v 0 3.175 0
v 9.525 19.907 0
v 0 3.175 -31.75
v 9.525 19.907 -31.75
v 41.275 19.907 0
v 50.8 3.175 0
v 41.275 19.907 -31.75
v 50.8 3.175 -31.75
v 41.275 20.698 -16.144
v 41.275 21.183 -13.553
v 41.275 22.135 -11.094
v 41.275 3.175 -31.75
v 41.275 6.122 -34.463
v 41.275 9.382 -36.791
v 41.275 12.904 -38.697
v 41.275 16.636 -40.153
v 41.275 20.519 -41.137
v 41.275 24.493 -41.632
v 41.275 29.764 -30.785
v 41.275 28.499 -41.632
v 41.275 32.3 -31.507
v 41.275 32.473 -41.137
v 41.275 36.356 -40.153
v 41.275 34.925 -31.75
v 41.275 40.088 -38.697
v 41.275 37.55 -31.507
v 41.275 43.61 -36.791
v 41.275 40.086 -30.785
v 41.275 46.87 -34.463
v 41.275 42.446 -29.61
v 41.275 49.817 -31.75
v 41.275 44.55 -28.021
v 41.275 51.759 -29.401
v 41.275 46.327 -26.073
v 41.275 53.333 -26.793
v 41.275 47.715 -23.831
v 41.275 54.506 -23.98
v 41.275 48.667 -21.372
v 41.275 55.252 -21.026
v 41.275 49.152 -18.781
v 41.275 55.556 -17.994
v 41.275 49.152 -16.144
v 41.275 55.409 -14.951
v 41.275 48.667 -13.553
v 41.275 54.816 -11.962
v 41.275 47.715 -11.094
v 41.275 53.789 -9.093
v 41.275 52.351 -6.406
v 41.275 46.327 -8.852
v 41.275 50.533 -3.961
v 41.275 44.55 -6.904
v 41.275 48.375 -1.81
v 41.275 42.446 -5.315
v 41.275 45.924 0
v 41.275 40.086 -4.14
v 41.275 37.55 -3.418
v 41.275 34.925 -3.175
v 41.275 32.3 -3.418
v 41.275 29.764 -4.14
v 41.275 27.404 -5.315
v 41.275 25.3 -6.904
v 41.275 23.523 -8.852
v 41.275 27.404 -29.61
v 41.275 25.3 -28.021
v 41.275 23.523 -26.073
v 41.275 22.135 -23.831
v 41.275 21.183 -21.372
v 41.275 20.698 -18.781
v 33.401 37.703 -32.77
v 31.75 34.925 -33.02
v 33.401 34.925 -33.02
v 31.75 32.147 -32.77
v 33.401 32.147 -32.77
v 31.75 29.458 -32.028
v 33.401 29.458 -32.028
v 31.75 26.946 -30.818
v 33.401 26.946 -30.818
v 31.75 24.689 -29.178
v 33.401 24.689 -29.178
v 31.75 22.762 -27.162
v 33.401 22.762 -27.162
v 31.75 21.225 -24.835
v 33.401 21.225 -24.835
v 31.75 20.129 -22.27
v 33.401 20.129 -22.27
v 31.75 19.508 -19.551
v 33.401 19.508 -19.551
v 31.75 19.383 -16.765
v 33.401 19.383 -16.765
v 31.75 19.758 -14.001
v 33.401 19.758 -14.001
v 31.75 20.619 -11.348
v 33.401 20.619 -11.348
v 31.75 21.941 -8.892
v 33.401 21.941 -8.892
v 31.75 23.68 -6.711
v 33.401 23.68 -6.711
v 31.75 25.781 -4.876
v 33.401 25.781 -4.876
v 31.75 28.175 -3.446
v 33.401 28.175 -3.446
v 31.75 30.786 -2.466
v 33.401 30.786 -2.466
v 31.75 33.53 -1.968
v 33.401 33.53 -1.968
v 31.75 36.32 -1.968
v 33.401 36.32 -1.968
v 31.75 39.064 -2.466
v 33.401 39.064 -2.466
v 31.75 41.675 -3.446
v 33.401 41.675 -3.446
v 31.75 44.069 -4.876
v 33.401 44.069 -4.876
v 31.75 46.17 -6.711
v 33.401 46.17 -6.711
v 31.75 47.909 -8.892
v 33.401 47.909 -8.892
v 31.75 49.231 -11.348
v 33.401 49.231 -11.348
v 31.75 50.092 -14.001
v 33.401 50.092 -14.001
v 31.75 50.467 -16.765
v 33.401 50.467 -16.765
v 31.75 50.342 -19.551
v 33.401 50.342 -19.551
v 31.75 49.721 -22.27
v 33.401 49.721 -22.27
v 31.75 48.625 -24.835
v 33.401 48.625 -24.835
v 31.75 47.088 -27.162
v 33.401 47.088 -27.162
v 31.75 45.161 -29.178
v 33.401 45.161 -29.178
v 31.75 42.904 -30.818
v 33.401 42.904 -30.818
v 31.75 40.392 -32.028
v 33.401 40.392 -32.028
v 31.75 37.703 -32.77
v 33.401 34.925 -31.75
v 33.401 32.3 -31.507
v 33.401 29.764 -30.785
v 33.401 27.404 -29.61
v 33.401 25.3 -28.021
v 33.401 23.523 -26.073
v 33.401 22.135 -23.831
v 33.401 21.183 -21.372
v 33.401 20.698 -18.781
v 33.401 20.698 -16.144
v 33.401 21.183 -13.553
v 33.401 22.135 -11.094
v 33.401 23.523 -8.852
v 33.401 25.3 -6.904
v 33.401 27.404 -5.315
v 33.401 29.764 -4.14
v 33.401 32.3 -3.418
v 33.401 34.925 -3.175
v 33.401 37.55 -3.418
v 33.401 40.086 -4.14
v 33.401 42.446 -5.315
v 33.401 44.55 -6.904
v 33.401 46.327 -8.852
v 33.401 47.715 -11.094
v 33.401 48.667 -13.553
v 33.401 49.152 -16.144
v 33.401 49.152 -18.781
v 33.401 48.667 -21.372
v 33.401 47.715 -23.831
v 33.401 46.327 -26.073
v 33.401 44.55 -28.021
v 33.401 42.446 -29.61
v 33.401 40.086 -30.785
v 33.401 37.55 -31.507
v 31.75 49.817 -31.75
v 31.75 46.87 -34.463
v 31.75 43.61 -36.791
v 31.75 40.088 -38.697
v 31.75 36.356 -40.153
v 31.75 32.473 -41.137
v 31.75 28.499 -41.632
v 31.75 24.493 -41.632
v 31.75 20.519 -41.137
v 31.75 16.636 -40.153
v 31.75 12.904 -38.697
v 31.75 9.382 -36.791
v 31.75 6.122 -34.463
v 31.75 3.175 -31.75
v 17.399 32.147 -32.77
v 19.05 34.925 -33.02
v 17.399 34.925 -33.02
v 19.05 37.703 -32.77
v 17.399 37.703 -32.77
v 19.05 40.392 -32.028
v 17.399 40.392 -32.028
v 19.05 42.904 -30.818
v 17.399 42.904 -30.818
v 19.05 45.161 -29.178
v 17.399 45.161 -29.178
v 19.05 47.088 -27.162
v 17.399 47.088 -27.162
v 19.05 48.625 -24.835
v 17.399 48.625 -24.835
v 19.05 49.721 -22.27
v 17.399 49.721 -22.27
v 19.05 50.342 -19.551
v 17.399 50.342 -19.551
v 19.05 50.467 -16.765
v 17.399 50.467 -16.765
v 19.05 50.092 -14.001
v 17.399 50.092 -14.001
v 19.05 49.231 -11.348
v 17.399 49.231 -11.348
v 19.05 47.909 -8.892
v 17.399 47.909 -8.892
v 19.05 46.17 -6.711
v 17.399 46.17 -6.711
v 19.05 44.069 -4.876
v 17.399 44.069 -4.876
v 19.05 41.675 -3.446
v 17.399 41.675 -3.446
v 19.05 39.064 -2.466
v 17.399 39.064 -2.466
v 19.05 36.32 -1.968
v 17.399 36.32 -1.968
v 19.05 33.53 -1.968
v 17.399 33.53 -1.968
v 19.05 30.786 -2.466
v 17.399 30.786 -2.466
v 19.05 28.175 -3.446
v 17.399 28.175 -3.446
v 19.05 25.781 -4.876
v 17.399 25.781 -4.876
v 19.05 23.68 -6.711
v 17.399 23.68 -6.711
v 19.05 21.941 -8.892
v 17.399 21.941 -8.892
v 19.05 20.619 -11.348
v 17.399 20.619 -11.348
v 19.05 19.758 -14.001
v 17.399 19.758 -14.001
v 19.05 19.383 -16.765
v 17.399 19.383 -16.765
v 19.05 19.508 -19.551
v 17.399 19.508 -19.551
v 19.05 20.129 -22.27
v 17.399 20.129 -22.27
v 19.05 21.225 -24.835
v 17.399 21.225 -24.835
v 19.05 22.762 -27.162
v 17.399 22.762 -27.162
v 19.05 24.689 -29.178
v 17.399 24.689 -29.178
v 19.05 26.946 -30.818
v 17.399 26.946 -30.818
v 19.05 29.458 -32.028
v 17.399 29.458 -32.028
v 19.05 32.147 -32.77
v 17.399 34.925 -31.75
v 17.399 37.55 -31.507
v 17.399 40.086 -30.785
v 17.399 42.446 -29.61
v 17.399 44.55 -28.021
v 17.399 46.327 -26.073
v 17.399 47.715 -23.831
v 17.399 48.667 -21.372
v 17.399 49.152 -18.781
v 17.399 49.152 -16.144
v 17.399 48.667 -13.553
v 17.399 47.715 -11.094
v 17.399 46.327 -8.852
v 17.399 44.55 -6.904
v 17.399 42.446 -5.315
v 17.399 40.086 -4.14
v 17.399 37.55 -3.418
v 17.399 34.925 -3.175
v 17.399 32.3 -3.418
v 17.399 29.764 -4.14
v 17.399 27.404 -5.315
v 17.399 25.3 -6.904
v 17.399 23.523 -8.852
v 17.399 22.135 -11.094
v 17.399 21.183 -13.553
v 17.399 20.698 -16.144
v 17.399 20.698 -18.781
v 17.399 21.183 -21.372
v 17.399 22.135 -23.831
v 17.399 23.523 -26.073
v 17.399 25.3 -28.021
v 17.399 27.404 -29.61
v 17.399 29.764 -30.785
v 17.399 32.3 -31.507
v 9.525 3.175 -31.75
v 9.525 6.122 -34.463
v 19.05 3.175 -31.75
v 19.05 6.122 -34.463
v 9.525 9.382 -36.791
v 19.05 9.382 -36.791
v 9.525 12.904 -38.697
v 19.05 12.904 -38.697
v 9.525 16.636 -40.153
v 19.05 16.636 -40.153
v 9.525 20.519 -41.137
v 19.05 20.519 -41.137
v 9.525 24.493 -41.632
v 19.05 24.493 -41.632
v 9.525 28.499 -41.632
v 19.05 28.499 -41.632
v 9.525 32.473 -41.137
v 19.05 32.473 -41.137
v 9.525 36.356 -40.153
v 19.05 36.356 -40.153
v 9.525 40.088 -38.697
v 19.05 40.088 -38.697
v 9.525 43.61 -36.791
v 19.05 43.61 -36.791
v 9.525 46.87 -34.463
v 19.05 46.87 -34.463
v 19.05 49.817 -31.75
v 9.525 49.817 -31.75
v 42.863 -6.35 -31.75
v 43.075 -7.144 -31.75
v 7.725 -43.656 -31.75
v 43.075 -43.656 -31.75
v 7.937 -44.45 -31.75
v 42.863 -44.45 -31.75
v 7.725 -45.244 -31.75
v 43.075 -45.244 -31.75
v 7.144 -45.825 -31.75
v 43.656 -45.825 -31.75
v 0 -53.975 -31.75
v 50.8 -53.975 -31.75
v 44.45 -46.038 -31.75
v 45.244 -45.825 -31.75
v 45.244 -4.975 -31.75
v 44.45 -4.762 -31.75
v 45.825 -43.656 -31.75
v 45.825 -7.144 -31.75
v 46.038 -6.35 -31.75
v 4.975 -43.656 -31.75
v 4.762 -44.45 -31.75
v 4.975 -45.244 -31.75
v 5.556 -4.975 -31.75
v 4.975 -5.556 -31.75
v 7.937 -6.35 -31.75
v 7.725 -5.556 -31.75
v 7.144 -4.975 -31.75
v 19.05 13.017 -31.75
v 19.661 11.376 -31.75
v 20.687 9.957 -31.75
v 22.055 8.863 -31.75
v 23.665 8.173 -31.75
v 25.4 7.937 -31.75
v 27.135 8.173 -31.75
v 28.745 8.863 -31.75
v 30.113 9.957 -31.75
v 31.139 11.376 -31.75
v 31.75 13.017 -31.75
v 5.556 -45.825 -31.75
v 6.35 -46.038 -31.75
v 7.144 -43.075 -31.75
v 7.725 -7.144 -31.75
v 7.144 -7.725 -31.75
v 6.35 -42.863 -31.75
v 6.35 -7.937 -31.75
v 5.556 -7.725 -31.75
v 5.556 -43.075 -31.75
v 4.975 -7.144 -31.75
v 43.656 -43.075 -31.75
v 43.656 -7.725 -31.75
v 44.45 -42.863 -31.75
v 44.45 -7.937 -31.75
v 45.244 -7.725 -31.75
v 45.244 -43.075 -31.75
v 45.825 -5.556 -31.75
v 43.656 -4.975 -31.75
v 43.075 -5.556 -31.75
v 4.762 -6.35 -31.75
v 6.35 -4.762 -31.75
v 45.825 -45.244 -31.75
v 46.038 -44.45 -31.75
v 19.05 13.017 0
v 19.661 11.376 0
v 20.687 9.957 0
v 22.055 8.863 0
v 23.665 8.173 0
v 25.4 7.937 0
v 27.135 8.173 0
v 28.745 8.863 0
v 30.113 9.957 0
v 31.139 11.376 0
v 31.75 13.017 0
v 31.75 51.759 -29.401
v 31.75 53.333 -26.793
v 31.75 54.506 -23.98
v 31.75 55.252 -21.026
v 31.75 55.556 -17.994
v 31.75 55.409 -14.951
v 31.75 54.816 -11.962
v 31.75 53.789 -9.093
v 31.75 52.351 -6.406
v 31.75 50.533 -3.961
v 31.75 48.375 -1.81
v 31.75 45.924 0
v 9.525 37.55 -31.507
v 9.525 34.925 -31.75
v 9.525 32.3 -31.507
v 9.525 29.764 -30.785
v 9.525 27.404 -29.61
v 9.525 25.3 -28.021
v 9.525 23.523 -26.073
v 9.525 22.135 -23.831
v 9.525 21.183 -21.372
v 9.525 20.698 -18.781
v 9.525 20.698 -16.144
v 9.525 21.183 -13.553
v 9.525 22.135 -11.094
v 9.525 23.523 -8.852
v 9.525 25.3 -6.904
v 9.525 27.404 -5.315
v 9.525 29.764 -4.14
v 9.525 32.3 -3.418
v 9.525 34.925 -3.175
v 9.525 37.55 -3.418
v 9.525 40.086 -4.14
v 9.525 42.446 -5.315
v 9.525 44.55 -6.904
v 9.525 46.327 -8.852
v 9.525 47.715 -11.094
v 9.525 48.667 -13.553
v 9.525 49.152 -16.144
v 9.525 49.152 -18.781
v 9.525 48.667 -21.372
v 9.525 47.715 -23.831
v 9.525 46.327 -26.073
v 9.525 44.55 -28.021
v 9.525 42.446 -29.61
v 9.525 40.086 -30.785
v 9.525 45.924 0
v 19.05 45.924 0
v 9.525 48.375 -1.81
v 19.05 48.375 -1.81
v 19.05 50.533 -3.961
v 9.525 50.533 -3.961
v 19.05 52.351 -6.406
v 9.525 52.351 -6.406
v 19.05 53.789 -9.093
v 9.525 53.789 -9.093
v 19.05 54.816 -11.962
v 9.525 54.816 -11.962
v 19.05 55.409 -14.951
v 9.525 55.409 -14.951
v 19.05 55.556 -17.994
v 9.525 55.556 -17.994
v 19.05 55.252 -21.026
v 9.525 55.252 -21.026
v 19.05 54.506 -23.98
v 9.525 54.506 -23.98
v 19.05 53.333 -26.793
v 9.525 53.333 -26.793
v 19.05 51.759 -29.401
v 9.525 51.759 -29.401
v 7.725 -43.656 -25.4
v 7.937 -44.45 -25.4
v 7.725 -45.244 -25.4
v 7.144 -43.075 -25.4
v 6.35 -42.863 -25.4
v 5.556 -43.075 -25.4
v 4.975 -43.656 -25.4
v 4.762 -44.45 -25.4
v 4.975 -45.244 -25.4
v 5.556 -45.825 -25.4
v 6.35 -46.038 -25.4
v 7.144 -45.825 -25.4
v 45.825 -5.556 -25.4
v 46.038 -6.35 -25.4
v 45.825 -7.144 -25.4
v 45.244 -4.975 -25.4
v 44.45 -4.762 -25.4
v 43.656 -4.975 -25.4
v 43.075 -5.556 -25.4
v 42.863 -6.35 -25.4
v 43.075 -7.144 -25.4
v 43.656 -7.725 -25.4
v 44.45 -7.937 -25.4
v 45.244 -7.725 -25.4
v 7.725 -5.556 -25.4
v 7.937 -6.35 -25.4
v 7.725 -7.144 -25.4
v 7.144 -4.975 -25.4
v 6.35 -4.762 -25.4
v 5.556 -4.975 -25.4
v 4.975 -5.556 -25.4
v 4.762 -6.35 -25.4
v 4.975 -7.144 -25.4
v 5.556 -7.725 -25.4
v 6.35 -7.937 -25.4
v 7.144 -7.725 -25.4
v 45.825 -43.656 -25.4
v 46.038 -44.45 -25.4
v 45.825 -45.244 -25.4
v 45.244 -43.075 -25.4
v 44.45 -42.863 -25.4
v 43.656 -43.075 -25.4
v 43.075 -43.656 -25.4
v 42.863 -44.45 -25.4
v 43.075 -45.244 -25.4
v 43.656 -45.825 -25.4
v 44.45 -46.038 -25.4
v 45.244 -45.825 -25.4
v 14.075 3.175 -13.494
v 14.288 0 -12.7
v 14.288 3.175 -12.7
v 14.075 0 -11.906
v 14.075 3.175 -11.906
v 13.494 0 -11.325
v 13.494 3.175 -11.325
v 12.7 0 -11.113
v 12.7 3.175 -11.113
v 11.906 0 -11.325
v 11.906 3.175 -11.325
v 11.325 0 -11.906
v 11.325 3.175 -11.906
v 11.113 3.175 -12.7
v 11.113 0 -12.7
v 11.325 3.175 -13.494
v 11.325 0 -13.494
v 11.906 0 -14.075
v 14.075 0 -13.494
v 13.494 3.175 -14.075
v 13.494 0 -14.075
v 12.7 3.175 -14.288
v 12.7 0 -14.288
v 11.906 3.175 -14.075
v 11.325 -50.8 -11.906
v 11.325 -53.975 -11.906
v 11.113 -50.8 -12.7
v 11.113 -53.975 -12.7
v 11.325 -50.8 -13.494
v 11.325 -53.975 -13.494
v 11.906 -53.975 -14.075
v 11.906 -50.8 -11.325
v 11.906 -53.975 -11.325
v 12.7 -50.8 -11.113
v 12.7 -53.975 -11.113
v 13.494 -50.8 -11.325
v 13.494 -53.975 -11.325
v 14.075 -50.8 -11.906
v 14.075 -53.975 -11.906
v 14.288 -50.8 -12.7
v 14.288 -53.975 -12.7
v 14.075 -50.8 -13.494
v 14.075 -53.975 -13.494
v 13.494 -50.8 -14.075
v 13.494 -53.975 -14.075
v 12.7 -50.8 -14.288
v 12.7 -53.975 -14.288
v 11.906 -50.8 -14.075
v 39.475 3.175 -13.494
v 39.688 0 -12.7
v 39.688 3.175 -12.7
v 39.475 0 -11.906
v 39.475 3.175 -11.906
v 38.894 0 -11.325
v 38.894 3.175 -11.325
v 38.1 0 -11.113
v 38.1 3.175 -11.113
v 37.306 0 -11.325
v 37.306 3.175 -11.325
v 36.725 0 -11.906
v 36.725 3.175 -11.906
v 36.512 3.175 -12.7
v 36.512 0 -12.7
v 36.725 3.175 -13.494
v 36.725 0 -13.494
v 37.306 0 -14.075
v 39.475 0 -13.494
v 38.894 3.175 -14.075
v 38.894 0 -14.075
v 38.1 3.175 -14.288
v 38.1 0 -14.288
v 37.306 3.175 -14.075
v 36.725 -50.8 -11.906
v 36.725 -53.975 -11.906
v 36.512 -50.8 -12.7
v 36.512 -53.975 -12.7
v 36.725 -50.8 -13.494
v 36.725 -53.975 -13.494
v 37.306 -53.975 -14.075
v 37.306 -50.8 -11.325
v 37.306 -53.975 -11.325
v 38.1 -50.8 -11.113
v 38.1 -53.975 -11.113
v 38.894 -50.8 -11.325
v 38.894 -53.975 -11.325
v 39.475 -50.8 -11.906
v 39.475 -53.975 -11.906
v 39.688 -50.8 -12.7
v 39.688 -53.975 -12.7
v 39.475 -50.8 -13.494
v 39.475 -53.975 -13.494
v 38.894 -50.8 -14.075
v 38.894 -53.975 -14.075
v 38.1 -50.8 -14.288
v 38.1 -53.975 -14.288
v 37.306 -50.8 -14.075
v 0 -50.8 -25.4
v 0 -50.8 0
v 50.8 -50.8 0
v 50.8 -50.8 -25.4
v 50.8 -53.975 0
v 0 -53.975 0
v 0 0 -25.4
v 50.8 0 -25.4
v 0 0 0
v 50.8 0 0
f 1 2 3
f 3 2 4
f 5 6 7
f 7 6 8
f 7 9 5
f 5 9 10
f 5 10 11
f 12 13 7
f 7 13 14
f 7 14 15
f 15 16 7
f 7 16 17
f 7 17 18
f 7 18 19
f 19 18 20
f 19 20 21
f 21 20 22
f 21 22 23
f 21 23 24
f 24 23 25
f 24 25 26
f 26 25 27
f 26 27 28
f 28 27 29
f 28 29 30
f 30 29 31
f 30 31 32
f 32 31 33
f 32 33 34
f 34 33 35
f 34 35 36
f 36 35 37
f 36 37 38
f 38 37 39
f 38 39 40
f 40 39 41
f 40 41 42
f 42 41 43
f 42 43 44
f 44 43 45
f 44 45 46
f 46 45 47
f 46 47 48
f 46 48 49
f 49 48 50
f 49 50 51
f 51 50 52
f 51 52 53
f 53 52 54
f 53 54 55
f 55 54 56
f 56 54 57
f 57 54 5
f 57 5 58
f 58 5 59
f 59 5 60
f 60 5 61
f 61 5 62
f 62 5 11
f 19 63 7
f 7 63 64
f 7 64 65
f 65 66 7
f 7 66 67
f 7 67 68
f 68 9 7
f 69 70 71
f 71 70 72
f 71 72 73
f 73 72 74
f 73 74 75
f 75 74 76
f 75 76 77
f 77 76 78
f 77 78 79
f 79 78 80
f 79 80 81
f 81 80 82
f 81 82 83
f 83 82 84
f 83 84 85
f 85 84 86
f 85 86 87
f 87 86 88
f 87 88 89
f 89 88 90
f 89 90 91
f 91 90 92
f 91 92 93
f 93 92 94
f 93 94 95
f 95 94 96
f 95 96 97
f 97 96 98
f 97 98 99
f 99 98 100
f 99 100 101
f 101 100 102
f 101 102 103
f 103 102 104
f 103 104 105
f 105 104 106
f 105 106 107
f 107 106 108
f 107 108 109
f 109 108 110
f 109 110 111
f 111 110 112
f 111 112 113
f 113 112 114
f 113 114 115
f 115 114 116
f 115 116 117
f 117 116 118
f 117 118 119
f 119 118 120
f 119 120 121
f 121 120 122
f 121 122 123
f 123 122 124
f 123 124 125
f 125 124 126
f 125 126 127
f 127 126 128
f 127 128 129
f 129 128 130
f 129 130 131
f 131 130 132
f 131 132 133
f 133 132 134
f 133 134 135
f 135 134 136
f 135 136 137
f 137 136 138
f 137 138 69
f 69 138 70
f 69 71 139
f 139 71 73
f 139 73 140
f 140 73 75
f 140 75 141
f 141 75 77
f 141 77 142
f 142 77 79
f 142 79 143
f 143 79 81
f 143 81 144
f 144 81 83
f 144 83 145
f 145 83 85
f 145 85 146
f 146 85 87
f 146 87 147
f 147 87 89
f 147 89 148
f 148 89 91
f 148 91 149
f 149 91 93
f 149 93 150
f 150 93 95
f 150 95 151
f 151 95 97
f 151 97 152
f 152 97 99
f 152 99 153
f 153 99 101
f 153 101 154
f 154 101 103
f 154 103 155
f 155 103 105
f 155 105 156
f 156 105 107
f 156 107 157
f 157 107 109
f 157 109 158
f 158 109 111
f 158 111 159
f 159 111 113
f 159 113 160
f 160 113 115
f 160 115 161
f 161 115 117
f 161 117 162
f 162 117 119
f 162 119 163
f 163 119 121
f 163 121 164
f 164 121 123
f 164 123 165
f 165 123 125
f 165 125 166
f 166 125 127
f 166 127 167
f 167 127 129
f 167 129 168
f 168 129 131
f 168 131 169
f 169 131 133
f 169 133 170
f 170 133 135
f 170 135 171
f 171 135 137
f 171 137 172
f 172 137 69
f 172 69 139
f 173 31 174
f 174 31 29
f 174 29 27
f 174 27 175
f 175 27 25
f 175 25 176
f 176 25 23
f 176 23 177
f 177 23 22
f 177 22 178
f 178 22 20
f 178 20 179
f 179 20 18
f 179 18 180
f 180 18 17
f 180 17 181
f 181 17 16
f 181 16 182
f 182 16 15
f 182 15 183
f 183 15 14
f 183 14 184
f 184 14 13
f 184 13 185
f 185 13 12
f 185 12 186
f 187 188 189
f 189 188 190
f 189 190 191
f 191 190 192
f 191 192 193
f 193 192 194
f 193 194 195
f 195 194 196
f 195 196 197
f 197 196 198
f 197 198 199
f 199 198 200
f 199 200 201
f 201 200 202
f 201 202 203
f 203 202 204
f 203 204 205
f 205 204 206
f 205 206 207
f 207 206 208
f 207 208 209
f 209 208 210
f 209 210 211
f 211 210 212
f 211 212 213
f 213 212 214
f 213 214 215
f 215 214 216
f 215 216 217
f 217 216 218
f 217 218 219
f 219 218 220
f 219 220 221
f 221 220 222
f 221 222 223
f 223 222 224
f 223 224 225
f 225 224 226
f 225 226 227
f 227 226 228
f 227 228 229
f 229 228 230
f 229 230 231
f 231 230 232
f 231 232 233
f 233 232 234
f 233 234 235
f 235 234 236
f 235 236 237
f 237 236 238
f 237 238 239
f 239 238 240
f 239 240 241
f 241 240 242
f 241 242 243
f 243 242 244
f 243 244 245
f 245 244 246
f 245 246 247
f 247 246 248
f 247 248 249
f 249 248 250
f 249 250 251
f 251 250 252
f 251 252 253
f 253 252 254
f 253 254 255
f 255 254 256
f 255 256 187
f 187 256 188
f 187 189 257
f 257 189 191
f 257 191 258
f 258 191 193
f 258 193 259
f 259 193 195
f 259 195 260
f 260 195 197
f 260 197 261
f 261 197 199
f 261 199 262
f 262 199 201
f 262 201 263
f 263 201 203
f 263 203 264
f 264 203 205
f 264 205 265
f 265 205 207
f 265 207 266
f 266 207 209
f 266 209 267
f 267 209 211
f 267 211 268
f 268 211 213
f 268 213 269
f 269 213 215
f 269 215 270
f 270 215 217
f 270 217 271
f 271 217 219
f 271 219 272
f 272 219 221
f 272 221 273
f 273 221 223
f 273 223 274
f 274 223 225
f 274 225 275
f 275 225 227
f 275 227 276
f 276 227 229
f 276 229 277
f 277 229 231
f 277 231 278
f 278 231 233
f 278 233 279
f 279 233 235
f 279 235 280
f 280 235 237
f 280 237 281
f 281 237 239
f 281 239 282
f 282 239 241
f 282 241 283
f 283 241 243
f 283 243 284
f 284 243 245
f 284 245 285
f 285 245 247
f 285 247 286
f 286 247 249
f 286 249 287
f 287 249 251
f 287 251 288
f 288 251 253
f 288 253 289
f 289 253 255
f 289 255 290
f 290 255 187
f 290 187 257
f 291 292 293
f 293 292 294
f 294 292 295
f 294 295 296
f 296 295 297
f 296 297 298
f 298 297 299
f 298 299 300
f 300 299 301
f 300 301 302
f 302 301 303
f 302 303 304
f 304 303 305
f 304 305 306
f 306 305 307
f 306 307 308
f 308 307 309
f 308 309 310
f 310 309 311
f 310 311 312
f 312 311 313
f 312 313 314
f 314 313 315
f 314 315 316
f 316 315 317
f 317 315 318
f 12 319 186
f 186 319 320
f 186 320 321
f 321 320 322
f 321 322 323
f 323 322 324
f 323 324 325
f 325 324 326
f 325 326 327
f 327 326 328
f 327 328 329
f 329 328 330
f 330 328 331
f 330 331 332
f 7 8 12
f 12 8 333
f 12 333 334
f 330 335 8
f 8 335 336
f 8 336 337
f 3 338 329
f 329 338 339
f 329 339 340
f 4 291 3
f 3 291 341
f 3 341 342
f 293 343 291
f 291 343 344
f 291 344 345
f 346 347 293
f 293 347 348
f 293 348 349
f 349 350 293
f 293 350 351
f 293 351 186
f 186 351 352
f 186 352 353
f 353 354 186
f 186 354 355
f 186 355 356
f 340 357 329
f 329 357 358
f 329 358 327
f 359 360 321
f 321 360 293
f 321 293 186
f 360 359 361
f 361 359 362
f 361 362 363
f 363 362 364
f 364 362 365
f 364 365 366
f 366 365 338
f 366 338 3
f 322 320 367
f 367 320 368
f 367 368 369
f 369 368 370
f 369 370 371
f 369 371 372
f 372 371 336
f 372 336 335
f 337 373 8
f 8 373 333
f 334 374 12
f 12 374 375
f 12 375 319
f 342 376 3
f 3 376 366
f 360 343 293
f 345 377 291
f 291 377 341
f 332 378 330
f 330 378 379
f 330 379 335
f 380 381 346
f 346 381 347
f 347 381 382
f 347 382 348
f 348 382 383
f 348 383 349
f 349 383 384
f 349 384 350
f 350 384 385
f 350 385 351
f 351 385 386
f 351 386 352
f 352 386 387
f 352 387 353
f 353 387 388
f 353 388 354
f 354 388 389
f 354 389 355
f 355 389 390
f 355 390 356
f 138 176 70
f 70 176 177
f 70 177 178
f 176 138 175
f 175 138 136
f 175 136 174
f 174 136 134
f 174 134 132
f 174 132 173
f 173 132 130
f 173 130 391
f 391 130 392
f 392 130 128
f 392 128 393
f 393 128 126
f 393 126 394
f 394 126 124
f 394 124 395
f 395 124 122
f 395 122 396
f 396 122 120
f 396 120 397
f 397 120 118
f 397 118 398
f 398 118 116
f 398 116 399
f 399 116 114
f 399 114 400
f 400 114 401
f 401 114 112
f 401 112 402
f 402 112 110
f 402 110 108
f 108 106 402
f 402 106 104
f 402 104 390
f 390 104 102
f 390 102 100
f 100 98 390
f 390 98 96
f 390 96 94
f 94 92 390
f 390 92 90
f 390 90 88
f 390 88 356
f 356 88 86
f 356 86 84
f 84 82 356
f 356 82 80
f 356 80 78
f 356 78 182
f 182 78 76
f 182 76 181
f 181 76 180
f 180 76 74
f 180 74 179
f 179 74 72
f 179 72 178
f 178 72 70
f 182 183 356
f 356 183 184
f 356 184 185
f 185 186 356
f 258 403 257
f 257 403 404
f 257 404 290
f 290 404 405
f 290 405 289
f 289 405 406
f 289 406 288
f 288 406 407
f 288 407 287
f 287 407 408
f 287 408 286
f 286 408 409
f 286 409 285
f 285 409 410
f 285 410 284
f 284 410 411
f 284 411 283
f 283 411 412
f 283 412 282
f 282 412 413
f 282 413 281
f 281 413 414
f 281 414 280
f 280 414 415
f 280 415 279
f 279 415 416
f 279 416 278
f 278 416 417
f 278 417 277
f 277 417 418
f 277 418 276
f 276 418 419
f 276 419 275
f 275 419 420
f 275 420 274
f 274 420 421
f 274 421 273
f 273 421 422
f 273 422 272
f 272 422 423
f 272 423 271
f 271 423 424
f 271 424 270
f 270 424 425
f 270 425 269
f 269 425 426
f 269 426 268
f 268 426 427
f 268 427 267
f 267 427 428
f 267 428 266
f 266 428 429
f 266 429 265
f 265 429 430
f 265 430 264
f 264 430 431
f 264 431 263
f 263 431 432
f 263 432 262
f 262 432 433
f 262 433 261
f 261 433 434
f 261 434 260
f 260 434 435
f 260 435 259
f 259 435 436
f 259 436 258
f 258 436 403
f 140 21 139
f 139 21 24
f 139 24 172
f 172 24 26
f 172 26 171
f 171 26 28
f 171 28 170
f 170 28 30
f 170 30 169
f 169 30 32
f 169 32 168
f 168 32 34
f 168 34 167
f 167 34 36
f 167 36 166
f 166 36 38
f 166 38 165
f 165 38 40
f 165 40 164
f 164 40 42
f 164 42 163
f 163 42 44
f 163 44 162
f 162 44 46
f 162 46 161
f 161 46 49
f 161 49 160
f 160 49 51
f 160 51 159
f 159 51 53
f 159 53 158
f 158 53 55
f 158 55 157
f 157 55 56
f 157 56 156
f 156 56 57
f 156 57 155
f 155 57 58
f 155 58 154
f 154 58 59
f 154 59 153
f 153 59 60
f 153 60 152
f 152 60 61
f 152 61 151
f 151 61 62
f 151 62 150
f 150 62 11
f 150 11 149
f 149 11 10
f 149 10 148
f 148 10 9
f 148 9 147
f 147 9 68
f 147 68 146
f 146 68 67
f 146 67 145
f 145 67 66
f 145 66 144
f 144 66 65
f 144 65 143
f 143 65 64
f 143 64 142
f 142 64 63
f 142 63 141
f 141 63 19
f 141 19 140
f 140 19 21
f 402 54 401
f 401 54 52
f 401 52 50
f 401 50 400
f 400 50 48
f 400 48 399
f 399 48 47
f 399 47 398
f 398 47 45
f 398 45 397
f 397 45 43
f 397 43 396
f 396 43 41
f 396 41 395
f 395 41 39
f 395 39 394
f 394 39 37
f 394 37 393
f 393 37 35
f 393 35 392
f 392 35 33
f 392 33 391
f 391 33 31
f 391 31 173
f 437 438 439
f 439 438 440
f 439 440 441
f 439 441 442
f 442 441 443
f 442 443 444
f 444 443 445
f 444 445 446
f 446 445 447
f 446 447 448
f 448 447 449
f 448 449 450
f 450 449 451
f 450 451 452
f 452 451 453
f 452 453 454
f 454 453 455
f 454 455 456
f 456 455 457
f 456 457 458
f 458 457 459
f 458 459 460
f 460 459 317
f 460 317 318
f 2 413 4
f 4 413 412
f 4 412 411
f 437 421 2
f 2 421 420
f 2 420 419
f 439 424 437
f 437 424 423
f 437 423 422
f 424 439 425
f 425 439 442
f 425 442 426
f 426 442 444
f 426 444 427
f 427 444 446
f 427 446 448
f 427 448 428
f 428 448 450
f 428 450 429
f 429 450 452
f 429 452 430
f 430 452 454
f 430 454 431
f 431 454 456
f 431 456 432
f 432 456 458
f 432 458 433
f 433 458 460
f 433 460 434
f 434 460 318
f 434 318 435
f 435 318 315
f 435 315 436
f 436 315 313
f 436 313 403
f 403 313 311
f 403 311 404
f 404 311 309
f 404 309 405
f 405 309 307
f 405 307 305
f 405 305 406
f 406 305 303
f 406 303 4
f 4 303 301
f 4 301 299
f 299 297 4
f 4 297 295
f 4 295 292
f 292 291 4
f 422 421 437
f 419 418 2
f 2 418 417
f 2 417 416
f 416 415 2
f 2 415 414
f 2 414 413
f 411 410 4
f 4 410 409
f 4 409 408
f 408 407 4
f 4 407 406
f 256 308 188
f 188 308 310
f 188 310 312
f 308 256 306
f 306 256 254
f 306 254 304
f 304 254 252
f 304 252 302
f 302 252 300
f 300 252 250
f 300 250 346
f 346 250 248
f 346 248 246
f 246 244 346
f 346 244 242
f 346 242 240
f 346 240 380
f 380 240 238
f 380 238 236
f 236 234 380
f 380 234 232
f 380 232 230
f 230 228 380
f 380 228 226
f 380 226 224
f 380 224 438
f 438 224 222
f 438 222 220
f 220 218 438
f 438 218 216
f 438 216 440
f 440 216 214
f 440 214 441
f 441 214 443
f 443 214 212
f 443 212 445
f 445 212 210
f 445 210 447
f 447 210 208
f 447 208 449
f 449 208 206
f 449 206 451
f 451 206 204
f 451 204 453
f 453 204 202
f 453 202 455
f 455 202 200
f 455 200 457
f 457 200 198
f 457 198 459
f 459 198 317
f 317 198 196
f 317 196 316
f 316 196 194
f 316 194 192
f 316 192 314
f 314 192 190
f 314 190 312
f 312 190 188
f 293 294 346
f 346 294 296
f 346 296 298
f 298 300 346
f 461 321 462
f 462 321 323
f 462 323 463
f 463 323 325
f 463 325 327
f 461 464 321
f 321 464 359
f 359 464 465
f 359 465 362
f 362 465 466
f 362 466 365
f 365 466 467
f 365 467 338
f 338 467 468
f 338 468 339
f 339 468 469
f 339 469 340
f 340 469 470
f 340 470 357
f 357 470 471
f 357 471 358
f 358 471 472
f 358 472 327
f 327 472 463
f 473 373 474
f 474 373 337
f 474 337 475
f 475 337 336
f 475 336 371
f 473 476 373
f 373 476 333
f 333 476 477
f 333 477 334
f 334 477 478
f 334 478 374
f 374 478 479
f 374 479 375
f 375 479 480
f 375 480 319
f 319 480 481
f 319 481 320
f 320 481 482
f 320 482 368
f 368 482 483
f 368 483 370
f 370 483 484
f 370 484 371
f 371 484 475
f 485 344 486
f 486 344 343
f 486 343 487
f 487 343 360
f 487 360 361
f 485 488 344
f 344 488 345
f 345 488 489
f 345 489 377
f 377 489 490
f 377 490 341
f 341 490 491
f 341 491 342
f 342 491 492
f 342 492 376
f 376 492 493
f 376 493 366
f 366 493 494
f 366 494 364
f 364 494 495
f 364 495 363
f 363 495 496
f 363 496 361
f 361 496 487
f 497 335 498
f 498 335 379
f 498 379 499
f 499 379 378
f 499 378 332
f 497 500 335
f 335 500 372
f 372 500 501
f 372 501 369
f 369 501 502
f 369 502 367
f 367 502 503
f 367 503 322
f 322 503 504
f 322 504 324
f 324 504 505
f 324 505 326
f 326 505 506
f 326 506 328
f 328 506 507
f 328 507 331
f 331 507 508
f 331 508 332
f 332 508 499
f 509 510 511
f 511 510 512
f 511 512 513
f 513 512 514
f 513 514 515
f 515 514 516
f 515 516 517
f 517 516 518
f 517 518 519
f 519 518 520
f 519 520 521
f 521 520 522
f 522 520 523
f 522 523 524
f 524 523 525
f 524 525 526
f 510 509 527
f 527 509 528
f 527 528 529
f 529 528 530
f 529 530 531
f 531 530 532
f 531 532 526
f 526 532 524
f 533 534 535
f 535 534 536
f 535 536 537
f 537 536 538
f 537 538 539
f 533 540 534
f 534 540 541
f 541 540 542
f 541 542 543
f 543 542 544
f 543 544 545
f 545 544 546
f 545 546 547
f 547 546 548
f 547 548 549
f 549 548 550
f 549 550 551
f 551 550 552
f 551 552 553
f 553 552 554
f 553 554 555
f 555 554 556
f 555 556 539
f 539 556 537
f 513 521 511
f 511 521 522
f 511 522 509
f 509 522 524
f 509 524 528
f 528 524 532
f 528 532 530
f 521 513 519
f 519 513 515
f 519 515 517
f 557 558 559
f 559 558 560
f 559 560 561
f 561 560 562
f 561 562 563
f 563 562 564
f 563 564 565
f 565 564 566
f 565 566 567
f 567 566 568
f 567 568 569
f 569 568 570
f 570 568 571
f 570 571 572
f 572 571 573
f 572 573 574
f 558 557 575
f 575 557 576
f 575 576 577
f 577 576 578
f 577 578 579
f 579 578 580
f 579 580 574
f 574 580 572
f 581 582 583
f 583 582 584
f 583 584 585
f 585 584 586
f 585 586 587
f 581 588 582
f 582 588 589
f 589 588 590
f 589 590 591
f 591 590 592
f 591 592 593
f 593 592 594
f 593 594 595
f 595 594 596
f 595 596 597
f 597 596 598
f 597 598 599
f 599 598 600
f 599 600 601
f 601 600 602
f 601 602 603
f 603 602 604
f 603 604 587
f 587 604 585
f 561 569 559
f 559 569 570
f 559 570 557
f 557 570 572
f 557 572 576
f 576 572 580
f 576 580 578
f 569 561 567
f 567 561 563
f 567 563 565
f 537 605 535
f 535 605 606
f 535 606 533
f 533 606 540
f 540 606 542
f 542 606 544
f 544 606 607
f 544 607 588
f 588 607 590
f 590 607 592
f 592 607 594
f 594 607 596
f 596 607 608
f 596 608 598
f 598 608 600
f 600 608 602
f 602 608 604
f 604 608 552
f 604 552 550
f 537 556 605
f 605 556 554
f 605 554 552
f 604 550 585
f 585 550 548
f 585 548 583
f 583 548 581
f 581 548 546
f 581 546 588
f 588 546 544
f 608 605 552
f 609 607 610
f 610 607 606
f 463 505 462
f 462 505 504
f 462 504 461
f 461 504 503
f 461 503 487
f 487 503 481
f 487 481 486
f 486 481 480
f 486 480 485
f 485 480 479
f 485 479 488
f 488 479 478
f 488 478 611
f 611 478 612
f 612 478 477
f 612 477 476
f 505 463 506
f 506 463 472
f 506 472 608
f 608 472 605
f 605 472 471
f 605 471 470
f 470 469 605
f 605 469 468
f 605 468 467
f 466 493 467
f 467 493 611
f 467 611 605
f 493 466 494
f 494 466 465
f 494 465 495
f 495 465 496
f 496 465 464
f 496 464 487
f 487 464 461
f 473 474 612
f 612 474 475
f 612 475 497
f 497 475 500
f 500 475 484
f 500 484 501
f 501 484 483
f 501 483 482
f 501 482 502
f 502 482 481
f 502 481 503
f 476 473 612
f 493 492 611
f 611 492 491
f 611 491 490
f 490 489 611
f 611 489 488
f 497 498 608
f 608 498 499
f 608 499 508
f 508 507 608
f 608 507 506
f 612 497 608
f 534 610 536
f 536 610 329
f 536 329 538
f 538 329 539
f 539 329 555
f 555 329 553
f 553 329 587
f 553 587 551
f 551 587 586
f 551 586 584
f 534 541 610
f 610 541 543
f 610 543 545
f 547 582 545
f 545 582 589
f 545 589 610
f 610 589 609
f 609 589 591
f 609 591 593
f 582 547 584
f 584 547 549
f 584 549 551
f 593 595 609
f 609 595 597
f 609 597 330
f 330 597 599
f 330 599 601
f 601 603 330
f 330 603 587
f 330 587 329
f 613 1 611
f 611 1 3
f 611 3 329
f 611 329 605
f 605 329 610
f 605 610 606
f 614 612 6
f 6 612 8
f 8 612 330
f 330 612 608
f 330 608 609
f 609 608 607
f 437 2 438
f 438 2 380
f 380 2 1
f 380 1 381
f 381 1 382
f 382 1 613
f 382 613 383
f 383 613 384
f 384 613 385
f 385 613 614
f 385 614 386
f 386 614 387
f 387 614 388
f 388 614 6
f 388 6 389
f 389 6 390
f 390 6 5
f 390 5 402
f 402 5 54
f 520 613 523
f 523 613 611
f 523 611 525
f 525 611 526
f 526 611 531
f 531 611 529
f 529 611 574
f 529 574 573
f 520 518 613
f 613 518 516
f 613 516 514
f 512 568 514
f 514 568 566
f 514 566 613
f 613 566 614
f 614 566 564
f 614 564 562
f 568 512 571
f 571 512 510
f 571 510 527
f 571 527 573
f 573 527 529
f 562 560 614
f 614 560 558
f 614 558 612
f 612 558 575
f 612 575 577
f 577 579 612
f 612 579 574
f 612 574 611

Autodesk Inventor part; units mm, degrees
ref_plane "YZ Plane" through (0, 0, 0) normal (1, 0, 0) x (0, 1, 0)
ref_plane "XZ Plane" through (0, 0, 0) normal (0, 1, 0) x (-1, 0, 0)
sketch "Sketch1" plane through (0, 0, 0) normal (0, 1, 0) x (-1, 0, 0)
  line L0 (0, 0) -> (-50.8, 0)
  line L1 (-50.8, 0) -> (-50.8, -25.4)
  line L2 (-50.8, -25.4) -> (0, -25.4)
  line L3 (0, -25.4) -> (0, 0)
  dimension "d0" = 50.8
  dimension "d1" = 25.4
extrude "Extrusion1" add sketch "Sketch1" along normal blind 3.175
sketch "Sketch10" plane through (0, 3.175, 0) normal (0, 1, 0) x (1, 0, 0)
  line L0 (50.8, 25.4) -> (0, 25.4) projected
  line L1 (0, 25.4) -> (50.8, 25.4)
  line L2 (50.8, 25.4) -> (50.8, 31.75)
  line L3 (50.8, 31.75) -> (0, 31.75)
  line L4 (0, 31.75) -> (0, 25.4)
  point P0 (0, 0)
  dimension "d46" = 6.35
extrude "Extrusion7" add sketch "Sketch10" against normal blind 57.15
sketch "Sketch11" plane through (50.8, 0, 0) normal (1, 0, 0) x (0, 0, -1)
  line L0 (25.4, -53.975) -> (31.75, -53.975) projected
  line L1 (25.4, -53.975) -> (0, -53.975)
  line L2 (0, -53.975) -> (0, -50.8)
  line L3 (0, -50.8) -> (25.4, -50.8)
  line L4 (25.4, -50.8) -> (25.4, -53.975)
  point P0 (0, 0)
  dimension "d49" = 3.175
  dimension "d80" = 25.4
extrude "Extrusion8" add sketch "Sketch11" against normal blind 50.8
sketch "Sketch12" plane through (0, 3.175, 0) normal (0, 1, 0) x (1, 0, 0)
  line L0 (9.525, 31.75) -> (19.05, 31.75)
  line L1 (19.05, 31.75) -> (19.05, 0)
  line L2 (19.05, 0) -> (9.525, 0)
  line L3 (9.525, 0) -> (9.525, 31.75)
  line L4 (31.75, 31.75) -> (41.275, 31.75)
  line L5 (41.275, 31.75) -> (41.275, 0)
  line L6 (41.275, 0) -> (31.75, 0)
  line L7 (31.75, 0) -> (31.75, 31.75)
  line L8 (19.05, 31.75) -> (31.75, 31.75) construction
  line L9 (50.8, 25.4) -> (0, 25.4) construction
  line L10 (50.8, 31.75) -> (0, 31.75) construction
  line L11 (50.8, 0) -> (50.8, 31.75) construction
  point P0 (0, 0)
  point P1 (25.4, 31.75)
  point P2 (25.4, 31.75)
  point P3 (41.275, 15.875)
  point P4 (50.8, 15.875)
  point P5 (36.5125, 31.75)
  point P6 (25.4, 31.75)
  dimension "d52" = 12.7
  dimension "d54" = 9.525
extrude "Extrusion9" add sketch "Sketch12" along normal blind 76.2
sketch "Sketch14" plane through (0, 3.175, 0) normal (0, 1, 0) x (1, 0, 0)
  line L0 (0, 31.75) -> (0, 0) projected
  line L1 (0, 0) -> (50.8, 0) projected
  point P0 (12.7, 12.7)
  point P1 (38.1, 12.7)
  dimension "d62" = 12.7
  dimension "d63" = 12.7
  dimension "d64" = 25.4
hole "Hole3" at (12.7, 3.175, -12.7) at (38.1, 3.175, -12.7) direction (0, -1, 0) diameter 3.175 end through all
sketch "Sketch15" plane through (50.8, 3.175, -31.75) normal (0, 0, -1) x (-1, 0, 0)
  line L0 (6.35, -9.525) -> (44.45, -9.525) construction
  line L1 (44.45, -9.525) -> (44.45, -47.625) construction
  line L2 (44.45, -47.625) -> (6.35, -47.625) construction
  line L3 (6.35, -47.625) -> (6.35, -9.525) construction
  line L4 (0, 0) -> (50.8, 0) construction
  line L5 (50.8, 0) -> (50.8, -57.15) construction
  point P0 (50.8, -3.175)
  point P1 (25.4, -9.525)
  point P2 (25.4, 0)
  point P3 (44.45, -28.575)
  point P4 (50.8, -28.575)
  dimension "d72" = 38.1
hole "Hole4" at (44.45, -6.35, -31.75) at (6.35, -6.35, -31.75) at (6.35, -44.45, -31.75) at (44.45, -44.45, -31.75) direction (0, 0, 1) diameter 3.175 end through all
sketch "Sketch17" plane through (9.525, 3.175, -31.75) normal (-1, 0, 0) x (0, 0, 1)
  circle A0 centre (14.2875, 31.75) radius 14.2875
  line L0 (0, 0) -> (31.75, 0) projected
  line L1 (31.75, 0) -> (31.75, 76.2) projected
  line L2 (0, 76.2) -> (31.75, 76.2) projected
  line L3 (31.75, 76.2) -> (0, 76.2)
  line L4 (0, 76.2) -> (0, 33.9421)
  line L5 (0, 0) -> (0, 76.2) projected
  arc A1 (31.75, 42.7485) -> (0, 46.6421) centre (14.2875, 31.75) ccw
  arc A2 (0, 46.6421) -> (0, 0) centre (22.3743, 23.321) ccw
  point P0 (31.75, -3.175)
  point P1 (31.75, 30.0485)
  point P2 (0, 46.6421)
  point P3 (0, 46.6421)
  point P4 (0, 46.6421)
  dimension "d83" = 28.575
  dimension "d84" = 31.75
  dimension "d85" = 17.4625
  dimension "d98" = 6.35
extrude "Extrusion16" cut sketch "Sketch17" against normal blind 38.1 contours A0 | L4 L2 L1 A1
sketch "Sketch19" plane through (0, 0, 0) normal (0, 0, 1) x (1, 0, 0)
  line L0 (31.75, 3.175) -> (31.75, 20.0329)
  arc A0 (19.05, 15.875) -> (31.75, 15.875) centre (25.4, 14.4462) ccw
  line L1 (19.05, 3.175) -> (31.75, 3.175) projected
  line L2 (19.05, 3.175) -> (19.05, 45.9235) projected
  line L3 (31.75, 3.175) -> (31.75, 45.9235) projected
  point P0 (0, 0)
  point P1 (31.75, 15.875)
  dimension "d103" = 4.7625
  dimension "d104" = 12.7
  dimension "d105" = 12.7
extrude "Extrusion18" add sketch "Sketch19" against normal blind 31.75
sketch "Sketch20" plane through (19.05, 34.925, -17.4625) normal (1, 0, 0) x (0, 0, -1)
  circle A0 centre (0, 0) radius 14.2875 projected
  circle A1 centre (0, 0) radius 15.5575
  point P0 (-17.4625, -34.925)
  dimension "d108" = 1.27
extrude "Extrusion20" add sketch "Sketch17" against normal blind 9.525 contours L5 A2 L4
extrude "Extrusion21" cut sketch "Sketch20" against normal blind 1.651
ref_plane "Work Plane3" through (25.4, 13.0175, 0) normal (1, 0, 0) x (0, 0, -1)
mirror "Mirror6" about plane through (25.4, 13.0175, 0) normal (1, 0, 0) of "Extrusion20", "Extrusion21"
sketch "Sketch21" plane through (41.275, 3.175, 0) normal (1, 0, 0) x (0, 0, -1)
  circle A0 centre (17.4625, 31.75) radius 14.2875 projected
  arc A1 (31.75, 0) -> (31.75, 46.6421) centre (9.3757, 23.321) ccw projected
  arc A2 (31.75, 46.6421) -> (0, 42.7485) centre (17.4625, 31.75) ccw projected
  line L0 (0, 0) -> (0, 42.7485) projected
  line L1 (31.75, 0) -> (0, 0) projected
  point P0 (0, -3.175)
sketch "Sketch22" plane through (0, 3.175, 0) normal (0, 1, 0) x (1, 0, 0)
  line L0 (50.8, 0) -> (50.8, 31.75) projected
  line L1 (41.275, 31.75) -> (41.275, 0) projected
  line L2 (41.275, 0) -> (50.8, 0) projected
  line L3 (50.8, 0) -> (50.8, 31.75) projected
  line L4 (50.8, 31.75) -> (41.275, 31.75) projected
  point P0 (0, 0)
sketch "Sketch23" plane through (41.275, 3.175, 0) normal (1, 0, 0) x (0, 0, -1)
  circle A0 centre (17.4625, 31.75) radius 14.2875 projected
  line L0 (14.1389, 17.8544) -> (0, 17.8544)
  line L1 (0, 0) -> (0, 42.7485) projected
  line L2 (14.1389, 17.8544) -> (31.75, 17.8544)
  line L3 (31.75, 0) -> (31.75, 9.8425) projected
  line L4 (31.75, 17.8544) -> (31.75, 0)
  point P0 (0, -3.175)
sketch "Sketch24" plane through (0, 0, 0) normal (0, 0, 1) x (1, 0, 0)
  line L0 (50.8, 0) -> (50.8, 3.175) projected
  line L1 (50.8, 3.175) -> (41.275, 19.9074)
  line L2 (41.275, 49.8171) -> (41.275, 3.175) projected
  line L3 (41.275, 21.0294) -> (41.275, 3.175)
  line L4 (41.275, 3.175) -> (50.8, 3.175) projected
  line L5 (41.275, 3.175) -> (50.8, 3.175)
  point P0 (0, 0)
extrude "Extrusion22" add sketch "Sketch24" against normal blind 31.75
mirror "Mirror7" about plane through (25.4, 13.0175, 0) normal (1, 0, 0) of "Extrusion22"
properties part number "Intake - Mount"
